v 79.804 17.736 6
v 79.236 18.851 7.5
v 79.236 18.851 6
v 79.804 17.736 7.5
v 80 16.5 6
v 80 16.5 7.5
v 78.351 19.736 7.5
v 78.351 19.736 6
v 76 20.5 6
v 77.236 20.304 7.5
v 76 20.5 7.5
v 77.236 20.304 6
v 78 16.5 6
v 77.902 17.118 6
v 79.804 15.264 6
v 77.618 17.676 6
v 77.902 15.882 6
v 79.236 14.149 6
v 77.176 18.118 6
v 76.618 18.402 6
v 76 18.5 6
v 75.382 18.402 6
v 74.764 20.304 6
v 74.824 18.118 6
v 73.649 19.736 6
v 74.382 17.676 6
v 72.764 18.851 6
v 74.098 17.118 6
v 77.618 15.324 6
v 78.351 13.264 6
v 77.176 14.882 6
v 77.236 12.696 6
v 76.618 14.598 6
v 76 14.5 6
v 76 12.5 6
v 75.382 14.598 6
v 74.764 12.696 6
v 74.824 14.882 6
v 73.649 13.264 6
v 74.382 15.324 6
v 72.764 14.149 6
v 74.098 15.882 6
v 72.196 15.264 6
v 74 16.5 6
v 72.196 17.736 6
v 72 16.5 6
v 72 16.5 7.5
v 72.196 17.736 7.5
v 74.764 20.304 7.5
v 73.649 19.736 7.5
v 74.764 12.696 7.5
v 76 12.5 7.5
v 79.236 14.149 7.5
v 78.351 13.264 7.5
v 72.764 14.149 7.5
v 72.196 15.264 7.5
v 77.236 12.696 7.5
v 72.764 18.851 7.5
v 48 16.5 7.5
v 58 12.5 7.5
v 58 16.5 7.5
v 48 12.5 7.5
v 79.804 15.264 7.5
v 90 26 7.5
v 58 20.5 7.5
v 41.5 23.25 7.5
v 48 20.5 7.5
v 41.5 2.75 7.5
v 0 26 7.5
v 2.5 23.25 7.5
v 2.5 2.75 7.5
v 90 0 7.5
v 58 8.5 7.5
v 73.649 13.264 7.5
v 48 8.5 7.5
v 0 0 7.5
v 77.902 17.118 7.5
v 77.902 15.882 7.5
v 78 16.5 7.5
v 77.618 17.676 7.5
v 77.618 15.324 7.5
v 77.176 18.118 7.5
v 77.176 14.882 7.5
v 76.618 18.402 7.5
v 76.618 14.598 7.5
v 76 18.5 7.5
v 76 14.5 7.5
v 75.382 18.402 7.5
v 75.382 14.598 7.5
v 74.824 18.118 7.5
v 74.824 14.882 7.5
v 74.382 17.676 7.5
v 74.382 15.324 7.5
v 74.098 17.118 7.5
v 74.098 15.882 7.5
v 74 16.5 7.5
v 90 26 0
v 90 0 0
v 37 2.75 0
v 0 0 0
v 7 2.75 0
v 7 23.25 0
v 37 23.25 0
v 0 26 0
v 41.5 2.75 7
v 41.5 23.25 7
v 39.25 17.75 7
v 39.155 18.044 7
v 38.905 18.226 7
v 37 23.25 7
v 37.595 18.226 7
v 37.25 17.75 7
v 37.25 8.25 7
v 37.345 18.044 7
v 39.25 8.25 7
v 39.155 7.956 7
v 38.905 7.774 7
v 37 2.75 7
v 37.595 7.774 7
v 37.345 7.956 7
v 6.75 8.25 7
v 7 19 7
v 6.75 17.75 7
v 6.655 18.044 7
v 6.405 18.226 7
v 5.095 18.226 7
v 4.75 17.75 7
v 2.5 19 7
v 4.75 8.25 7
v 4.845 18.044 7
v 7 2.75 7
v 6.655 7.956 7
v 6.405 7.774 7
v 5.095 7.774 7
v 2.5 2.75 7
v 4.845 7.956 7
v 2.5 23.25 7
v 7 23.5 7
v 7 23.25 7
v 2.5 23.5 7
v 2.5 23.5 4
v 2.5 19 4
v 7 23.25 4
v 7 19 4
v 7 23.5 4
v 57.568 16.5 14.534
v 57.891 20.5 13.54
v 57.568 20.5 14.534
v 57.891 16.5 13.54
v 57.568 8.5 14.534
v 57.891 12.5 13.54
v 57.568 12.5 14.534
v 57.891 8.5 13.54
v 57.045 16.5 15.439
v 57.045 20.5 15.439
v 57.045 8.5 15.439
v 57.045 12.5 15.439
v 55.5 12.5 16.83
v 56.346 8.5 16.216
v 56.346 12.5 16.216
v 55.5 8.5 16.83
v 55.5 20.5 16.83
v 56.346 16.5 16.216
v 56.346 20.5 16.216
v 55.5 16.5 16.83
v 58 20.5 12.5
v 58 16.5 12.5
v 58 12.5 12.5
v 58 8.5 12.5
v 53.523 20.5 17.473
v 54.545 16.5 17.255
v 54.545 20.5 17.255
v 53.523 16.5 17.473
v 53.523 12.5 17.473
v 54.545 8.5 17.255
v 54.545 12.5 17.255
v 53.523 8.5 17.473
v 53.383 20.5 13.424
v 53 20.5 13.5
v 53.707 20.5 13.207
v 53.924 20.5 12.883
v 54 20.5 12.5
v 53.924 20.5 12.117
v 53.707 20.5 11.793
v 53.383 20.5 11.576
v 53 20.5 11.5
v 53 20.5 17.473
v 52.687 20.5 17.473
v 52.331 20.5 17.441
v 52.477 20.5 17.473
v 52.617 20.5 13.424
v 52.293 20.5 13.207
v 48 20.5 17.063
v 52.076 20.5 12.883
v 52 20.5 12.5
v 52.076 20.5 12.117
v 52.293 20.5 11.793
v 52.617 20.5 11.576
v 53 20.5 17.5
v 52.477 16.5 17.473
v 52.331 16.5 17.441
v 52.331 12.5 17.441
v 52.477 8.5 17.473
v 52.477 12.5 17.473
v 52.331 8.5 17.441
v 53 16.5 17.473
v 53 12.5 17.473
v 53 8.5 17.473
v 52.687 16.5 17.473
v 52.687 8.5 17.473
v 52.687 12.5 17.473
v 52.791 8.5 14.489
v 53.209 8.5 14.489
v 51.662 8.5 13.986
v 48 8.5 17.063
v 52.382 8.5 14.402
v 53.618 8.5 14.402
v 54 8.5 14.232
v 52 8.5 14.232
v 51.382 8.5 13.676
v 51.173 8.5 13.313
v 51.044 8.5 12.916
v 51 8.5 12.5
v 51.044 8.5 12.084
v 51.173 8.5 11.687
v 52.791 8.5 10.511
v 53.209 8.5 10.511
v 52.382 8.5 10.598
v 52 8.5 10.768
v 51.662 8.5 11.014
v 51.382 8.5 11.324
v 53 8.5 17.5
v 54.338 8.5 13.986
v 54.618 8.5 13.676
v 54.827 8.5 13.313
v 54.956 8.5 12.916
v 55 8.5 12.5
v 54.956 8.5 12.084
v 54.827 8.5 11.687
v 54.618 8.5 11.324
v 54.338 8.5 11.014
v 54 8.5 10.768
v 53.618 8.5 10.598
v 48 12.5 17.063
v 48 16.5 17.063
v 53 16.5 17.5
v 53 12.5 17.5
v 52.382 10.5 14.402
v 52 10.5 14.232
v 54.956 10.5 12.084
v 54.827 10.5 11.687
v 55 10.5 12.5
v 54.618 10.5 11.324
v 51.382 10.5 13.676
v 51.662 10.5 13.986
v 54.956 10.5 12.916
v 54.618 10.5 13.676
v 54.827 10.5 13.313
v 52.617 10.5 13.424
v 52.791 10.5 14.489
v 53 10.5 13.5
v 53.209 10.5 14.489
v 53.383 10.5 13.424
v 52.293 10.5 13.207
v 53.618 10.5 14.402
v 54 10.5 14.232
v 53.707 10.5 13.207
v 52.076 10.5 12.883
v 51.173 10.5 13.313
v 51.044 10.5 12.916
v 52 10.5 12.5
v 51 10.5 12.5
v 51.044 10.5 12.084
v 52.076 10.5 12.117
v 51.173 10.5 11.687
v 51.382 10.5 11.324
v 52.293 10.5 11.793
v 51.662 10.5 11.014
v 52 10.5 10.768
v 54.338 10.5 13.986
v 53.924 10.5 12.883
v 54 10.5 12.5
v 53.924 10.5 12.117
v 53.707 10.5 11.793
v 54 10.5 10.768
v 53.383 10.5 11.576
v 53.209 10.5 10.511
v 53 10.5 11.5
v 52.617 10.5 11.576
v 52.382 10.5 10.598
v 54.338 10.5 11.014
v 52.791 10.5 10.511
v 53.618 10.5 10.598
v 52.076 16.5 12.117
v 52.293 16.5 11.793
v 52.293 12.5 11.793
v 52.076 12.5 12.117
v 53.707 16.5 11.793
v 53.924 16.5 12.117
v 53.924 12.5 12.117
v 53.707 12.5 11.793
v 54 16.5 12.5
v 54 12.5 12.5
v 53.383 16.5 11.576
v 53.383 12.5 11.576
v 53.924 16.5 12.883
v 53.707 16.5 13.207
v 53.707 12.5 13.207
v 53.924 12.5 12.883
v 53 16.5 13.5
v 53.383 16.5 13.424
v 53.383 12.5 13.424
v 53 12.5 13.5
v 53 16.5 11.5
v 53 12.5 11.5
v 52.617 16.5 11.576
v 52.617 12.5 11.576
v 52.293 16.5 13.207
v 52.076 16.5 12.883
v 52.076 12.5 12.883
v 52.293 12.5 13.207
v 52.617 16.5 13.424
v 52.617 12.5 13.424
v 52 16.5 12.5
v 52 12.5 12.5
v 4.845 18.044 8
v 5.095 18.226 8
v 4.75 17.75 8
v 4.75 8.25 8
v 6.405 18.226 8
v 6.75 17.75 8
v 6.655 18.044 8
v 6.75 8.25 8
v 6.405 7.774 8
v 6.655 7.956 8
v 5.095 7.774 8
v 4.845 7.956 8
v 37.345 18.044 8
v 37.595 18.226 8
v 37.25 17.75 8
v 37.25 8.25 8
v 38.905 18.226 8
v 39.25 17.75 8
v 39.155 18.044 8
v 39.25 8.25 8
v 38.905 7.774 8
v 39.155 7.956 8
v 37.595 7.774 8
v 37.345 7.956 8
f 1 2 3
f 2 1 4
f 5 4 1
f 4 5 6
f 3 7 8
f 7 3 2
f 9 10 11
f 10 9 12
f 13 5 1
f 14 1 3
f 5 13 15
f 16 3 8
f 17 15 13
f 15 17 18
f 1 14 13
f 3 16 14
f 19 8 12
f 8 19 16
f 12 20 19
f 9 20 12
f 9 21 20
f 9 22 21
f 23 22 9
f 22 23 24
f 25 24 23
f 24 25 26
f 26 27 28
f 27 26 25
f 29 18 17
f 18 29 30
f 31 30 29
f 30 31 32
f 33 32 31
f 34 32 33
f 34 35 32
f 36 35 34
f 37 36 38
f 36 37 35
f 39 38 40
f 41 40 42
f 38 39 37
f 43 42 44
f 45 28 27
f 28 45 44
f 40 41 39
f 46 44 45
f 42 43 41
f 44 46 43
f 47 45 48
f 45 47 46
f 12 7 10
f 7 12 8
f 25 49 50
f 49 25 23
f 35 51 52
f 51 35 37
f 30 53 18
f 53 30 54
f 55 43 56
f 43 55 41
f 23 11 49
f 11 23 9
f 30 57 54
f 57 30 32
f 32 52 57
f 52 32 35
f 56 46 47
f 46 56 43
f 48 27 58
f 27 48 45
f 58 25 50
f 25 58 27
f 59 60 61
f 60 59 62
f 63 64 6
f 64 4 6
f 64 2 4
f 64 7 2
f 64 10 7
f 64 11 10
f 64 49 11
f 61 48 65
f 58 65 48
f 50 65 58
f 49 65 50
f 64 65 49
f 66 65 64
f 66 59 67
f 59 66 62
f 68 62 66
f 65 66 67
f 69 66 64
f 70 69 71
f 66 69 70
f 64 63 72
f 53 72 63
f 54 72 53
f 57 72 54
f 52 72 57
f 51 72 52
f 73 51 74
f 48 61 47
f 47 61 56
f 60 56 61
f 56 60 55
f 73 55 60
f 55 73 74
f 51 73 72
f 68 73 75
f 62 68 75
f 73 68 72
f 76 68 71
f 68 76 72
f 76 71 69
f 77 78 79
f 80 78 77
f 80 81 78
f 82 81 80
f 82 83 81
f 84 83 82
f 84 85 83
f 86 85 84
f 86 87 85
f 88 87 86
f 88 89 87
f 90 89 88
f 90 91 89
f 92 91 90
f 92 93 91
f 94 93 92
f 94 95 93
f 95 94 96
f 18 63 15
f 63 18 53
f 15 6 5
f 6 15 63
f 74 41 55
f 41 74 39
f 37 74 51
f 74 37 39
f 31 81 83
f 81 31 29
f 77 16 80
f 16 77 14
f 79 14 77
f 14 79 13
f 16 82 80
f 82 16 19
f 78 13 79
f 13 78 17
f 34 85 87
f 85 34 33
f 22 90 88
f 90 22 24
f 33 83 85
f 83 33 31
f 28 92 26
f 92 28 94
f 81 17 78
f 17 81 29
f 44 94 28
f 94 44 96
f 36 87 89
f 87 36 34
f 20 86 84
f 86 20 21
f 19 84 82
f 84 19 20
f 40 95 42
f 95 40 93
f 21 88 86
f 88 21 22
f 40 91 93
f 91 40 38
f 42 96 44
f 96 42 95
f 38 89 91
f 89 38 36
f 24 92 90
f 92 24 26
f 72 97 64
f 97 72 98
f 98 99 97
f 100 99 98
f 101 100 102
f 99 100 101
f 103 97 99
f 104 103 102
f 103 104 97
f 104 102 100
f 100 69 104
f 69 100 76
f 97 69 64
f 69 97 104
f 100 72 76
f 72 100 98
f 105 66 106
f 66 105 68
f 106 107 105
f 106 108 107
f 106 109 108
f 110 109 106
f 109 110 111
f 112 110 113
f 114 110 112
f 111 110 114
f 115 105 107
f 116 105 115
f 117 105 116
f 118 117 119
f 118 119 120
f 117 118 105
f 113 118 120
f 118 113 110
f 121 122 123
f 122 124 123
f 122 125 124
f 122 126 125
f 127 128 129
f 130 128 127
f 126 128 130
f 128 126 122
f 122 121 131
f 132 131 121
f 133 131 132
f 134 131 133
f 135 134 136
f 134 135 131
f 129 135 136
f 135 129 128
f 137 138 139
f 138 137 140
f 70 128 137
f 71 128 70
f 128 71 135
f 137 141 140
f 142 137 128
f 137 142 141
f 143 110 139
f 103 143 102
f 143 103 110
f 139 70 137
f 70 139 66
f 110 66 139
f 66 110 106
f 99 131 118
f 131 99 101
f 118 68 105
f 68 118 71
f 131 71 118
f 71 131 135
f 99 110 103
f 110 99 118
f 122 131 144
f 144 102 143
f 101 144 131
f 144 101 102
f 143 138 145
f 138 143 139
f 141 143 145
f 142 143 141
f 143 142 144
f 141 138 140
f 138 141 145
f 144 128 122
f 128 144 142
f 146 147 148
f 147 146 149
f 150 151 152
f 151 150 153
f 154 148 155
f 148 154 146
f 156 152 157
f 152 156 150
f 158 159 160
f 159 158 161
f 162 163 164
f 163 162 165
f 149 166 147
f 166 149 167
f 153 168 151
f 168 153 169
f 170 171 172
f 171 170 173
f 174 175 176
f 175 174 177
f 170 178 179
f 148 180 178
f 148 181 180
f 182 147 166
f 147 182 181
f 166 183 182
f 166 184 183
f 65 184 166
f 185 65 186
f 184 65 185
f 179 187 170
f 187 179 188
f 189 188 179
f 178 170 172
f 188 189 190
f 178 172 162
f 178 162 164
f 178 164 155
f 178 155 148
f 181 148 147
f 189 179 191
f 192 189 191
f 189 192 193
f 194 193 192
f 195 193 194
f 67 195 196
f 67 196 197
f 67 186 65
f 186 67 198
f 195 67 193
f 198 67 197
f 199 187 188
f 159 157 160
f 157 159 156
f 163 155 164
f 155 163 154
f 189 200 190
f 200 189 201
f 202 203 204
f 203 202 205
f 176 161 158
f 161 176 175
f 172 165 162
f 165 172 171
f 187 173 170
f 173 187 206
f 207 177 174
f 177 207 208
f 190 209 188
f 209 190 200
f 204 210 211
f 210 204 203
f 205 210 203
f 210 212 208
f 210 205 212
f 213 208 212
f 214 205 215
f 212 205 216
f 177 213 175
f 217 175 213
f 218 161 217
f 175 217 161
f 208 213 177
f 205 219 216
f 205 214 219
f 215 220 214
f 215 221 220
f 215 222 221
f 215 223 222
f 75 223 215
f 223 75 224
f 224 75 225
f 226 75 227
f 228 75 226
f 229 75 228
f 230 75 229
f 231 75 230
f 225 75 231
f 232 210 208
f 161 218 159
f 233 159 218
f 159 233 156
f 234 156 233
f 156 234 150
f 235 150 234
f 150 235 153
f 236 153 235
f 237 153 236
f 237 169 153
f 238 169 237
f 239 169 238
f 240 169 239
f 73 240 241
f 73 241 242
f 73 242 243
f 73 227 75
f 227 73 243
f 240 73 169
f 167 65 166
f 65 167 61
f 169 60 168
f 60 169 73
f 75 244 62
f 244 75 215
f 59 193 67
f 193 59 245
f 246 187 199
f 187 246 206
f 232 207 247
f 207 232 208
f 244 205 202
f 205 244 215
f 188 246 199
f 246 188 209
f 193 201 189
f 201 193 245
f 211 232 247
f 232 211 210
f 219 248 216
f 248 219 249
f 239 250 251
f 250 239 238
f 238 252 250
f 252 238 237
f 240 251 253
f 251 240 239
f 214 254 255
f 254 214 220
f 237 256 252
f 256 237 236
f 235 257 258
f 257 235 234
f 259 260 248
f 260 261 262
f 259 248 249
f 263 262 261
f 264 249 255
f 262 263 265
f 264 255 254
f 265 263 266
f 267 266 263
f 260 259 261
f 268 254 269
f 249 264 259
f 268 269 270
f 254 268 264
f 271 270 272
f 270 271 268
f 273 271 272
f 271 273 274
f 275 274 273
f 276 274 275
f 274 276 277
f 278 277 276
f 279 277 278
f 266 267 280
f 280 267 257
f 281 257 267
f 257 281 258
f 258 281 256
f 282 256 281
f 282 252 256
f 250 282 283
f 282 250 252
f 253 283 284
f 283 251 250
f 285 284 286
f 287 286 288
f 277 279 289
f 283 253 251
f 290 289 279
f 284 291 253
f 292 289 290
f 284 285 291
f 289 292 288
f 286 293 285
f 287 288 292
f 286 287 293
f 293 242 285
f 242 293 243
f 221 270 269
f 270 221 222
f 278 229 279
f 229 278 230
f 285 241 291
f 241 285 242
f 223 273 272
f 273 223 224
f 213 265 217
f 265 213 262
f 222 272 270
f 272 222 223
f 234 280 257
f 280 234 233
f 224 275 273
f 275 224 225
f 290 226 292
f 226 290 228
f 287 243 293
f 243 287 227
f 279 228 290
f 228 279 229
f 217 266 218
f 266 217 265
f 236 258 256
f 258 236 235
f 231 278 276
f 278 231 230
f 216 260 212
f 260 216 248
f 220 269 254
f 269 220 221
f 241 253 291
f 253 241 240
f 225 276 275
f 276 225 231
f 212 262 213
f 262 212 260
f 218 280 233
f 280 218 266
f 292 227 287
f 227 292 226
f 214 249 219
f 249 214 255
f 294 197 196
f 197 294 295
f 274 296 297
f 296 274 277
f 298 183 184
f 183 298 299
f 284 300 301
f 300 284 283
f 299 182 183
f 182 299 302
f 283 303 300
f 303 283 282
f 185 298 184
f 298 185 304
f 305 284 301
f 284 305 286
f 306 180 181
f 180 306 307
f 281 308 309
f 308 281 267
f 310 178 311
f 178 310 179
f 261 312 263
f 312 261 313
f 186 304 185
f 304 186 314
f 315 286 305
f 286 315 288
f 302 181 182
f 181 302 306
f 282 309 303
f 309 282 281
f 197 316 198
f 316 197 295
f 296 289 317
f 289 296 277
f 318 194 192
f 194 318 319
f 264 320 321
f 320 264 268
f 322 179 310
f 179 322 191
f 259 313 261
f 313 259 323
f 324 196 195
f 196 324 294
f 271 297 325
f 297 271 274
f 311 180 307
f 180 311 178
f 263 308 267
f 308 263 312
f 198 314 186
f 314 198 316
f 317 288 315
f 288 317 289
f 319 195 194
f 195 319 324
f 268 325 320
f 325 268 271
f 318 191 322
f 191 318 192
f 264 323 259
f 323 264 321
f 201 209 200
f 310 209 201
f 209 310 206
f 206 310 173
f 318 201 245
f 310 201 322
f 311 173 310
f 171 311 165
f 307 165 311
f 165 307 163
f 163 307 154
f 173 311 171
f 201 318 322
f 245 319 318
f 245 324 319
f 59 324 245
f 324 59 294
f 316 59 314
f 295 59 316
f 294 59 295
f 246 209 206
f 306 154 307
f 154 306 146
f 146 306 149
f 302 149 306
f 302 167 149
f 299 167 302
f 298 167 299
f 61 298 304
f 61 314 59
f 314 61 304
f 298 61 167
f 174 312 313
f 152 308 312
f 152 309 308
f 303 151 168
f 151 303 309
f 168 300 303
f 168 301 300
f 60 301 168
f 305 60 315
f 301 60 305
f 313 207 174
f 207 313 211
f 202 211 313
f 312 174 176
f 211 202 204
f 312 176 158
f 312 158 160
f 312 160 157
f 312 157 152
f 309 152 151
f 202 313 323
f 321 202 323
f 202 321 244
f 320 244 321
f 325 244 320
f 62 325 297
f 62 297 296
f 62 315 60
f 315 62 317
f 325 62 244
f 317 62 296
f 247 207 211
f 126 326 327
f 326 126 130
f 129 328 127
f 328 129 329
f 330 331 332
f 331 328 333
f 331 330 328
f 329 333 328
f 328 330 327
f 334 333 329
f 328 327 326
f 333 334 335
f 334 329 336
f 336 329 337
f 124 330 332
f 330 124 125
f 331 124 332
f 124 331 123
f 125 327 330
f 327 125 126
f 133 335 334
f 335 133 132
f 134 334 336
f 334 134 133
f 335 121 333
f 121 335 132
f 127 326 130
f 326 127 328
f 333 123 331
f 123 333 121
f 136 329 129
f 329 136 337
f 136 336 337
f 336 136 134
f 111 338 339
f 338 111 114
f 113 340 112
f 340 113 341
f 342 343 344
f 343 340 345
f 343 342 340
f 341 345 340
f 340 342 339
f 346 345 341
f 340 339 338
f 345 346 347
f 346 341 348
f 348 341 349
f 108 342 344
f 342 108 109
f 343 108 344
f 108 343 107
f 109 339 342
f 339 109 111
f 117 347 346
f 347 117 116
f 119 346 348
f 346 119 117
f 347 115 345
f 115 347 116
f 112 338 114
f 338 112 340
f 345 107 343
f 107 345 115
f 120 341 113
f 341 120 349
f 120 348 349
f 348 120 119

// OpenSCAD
difference() {
  cube([90, 26, 7.5]);
    
  translate([2.5, (26-20.5)/2, 7]) cube([39, 20.5, 0.5]);
  translate([7, (26-20.5)/2, 0]) cube([30, 20.5, 7.5]);
    
  translate([2.5, 19, 4]) cube([4.5, 4.5, 3]);
    
  translate([76, 16.5, 6])difference() {
    cylinder(d=8, h=1.5, $fn=20);
    cylinder(d=4, h=1.5, $fn=20);
  }
}

minkowski() {
  translate([5.25, 8.25, 7]) cube([1, 9.5, 0.5]);
  cylinder(d=1, h=0.5, $fn=10);
}

minkowski() {
  translate([5 + 32 + 0.75, 8.25, 7]) cube([1, 9.5, 0.5]);
  cylinder(d=1, h=0.5, $fn=10);
}

translate([53, 8.5, 7.5]) difference() {
  union() {
    translate([0, 0, 5]) rotate(a = [-90, 0, 0]) cylinder(d = 10, h = 12, $fn = 30);
    translate([-5, 0, 0]) cube([10, 12, 5]);
   
    // limit the rotation to 5 deg, to keep the spring retained.
    x = 5*(1 - tan(5));
    translate([0, 0, 5]) rotate(a = [-90, -180, 0])  linear_extrude(height = 12) polygon([[0, 0], [5, 0], [5, x], [0, 5]]);
  }
  
  translate([0, 0, 5]) rotate(a = [-90, 0, 0]) cylinder(d = 4, h = 2, $fn = 30);
  
  translate([0, 0, 5]) rotate(a = [-90, 0, 0]) cylinder(d = 2, h = 12, $fn = 16);
  translate([-5, 4, 0]) cube([10,4,10]);
}
